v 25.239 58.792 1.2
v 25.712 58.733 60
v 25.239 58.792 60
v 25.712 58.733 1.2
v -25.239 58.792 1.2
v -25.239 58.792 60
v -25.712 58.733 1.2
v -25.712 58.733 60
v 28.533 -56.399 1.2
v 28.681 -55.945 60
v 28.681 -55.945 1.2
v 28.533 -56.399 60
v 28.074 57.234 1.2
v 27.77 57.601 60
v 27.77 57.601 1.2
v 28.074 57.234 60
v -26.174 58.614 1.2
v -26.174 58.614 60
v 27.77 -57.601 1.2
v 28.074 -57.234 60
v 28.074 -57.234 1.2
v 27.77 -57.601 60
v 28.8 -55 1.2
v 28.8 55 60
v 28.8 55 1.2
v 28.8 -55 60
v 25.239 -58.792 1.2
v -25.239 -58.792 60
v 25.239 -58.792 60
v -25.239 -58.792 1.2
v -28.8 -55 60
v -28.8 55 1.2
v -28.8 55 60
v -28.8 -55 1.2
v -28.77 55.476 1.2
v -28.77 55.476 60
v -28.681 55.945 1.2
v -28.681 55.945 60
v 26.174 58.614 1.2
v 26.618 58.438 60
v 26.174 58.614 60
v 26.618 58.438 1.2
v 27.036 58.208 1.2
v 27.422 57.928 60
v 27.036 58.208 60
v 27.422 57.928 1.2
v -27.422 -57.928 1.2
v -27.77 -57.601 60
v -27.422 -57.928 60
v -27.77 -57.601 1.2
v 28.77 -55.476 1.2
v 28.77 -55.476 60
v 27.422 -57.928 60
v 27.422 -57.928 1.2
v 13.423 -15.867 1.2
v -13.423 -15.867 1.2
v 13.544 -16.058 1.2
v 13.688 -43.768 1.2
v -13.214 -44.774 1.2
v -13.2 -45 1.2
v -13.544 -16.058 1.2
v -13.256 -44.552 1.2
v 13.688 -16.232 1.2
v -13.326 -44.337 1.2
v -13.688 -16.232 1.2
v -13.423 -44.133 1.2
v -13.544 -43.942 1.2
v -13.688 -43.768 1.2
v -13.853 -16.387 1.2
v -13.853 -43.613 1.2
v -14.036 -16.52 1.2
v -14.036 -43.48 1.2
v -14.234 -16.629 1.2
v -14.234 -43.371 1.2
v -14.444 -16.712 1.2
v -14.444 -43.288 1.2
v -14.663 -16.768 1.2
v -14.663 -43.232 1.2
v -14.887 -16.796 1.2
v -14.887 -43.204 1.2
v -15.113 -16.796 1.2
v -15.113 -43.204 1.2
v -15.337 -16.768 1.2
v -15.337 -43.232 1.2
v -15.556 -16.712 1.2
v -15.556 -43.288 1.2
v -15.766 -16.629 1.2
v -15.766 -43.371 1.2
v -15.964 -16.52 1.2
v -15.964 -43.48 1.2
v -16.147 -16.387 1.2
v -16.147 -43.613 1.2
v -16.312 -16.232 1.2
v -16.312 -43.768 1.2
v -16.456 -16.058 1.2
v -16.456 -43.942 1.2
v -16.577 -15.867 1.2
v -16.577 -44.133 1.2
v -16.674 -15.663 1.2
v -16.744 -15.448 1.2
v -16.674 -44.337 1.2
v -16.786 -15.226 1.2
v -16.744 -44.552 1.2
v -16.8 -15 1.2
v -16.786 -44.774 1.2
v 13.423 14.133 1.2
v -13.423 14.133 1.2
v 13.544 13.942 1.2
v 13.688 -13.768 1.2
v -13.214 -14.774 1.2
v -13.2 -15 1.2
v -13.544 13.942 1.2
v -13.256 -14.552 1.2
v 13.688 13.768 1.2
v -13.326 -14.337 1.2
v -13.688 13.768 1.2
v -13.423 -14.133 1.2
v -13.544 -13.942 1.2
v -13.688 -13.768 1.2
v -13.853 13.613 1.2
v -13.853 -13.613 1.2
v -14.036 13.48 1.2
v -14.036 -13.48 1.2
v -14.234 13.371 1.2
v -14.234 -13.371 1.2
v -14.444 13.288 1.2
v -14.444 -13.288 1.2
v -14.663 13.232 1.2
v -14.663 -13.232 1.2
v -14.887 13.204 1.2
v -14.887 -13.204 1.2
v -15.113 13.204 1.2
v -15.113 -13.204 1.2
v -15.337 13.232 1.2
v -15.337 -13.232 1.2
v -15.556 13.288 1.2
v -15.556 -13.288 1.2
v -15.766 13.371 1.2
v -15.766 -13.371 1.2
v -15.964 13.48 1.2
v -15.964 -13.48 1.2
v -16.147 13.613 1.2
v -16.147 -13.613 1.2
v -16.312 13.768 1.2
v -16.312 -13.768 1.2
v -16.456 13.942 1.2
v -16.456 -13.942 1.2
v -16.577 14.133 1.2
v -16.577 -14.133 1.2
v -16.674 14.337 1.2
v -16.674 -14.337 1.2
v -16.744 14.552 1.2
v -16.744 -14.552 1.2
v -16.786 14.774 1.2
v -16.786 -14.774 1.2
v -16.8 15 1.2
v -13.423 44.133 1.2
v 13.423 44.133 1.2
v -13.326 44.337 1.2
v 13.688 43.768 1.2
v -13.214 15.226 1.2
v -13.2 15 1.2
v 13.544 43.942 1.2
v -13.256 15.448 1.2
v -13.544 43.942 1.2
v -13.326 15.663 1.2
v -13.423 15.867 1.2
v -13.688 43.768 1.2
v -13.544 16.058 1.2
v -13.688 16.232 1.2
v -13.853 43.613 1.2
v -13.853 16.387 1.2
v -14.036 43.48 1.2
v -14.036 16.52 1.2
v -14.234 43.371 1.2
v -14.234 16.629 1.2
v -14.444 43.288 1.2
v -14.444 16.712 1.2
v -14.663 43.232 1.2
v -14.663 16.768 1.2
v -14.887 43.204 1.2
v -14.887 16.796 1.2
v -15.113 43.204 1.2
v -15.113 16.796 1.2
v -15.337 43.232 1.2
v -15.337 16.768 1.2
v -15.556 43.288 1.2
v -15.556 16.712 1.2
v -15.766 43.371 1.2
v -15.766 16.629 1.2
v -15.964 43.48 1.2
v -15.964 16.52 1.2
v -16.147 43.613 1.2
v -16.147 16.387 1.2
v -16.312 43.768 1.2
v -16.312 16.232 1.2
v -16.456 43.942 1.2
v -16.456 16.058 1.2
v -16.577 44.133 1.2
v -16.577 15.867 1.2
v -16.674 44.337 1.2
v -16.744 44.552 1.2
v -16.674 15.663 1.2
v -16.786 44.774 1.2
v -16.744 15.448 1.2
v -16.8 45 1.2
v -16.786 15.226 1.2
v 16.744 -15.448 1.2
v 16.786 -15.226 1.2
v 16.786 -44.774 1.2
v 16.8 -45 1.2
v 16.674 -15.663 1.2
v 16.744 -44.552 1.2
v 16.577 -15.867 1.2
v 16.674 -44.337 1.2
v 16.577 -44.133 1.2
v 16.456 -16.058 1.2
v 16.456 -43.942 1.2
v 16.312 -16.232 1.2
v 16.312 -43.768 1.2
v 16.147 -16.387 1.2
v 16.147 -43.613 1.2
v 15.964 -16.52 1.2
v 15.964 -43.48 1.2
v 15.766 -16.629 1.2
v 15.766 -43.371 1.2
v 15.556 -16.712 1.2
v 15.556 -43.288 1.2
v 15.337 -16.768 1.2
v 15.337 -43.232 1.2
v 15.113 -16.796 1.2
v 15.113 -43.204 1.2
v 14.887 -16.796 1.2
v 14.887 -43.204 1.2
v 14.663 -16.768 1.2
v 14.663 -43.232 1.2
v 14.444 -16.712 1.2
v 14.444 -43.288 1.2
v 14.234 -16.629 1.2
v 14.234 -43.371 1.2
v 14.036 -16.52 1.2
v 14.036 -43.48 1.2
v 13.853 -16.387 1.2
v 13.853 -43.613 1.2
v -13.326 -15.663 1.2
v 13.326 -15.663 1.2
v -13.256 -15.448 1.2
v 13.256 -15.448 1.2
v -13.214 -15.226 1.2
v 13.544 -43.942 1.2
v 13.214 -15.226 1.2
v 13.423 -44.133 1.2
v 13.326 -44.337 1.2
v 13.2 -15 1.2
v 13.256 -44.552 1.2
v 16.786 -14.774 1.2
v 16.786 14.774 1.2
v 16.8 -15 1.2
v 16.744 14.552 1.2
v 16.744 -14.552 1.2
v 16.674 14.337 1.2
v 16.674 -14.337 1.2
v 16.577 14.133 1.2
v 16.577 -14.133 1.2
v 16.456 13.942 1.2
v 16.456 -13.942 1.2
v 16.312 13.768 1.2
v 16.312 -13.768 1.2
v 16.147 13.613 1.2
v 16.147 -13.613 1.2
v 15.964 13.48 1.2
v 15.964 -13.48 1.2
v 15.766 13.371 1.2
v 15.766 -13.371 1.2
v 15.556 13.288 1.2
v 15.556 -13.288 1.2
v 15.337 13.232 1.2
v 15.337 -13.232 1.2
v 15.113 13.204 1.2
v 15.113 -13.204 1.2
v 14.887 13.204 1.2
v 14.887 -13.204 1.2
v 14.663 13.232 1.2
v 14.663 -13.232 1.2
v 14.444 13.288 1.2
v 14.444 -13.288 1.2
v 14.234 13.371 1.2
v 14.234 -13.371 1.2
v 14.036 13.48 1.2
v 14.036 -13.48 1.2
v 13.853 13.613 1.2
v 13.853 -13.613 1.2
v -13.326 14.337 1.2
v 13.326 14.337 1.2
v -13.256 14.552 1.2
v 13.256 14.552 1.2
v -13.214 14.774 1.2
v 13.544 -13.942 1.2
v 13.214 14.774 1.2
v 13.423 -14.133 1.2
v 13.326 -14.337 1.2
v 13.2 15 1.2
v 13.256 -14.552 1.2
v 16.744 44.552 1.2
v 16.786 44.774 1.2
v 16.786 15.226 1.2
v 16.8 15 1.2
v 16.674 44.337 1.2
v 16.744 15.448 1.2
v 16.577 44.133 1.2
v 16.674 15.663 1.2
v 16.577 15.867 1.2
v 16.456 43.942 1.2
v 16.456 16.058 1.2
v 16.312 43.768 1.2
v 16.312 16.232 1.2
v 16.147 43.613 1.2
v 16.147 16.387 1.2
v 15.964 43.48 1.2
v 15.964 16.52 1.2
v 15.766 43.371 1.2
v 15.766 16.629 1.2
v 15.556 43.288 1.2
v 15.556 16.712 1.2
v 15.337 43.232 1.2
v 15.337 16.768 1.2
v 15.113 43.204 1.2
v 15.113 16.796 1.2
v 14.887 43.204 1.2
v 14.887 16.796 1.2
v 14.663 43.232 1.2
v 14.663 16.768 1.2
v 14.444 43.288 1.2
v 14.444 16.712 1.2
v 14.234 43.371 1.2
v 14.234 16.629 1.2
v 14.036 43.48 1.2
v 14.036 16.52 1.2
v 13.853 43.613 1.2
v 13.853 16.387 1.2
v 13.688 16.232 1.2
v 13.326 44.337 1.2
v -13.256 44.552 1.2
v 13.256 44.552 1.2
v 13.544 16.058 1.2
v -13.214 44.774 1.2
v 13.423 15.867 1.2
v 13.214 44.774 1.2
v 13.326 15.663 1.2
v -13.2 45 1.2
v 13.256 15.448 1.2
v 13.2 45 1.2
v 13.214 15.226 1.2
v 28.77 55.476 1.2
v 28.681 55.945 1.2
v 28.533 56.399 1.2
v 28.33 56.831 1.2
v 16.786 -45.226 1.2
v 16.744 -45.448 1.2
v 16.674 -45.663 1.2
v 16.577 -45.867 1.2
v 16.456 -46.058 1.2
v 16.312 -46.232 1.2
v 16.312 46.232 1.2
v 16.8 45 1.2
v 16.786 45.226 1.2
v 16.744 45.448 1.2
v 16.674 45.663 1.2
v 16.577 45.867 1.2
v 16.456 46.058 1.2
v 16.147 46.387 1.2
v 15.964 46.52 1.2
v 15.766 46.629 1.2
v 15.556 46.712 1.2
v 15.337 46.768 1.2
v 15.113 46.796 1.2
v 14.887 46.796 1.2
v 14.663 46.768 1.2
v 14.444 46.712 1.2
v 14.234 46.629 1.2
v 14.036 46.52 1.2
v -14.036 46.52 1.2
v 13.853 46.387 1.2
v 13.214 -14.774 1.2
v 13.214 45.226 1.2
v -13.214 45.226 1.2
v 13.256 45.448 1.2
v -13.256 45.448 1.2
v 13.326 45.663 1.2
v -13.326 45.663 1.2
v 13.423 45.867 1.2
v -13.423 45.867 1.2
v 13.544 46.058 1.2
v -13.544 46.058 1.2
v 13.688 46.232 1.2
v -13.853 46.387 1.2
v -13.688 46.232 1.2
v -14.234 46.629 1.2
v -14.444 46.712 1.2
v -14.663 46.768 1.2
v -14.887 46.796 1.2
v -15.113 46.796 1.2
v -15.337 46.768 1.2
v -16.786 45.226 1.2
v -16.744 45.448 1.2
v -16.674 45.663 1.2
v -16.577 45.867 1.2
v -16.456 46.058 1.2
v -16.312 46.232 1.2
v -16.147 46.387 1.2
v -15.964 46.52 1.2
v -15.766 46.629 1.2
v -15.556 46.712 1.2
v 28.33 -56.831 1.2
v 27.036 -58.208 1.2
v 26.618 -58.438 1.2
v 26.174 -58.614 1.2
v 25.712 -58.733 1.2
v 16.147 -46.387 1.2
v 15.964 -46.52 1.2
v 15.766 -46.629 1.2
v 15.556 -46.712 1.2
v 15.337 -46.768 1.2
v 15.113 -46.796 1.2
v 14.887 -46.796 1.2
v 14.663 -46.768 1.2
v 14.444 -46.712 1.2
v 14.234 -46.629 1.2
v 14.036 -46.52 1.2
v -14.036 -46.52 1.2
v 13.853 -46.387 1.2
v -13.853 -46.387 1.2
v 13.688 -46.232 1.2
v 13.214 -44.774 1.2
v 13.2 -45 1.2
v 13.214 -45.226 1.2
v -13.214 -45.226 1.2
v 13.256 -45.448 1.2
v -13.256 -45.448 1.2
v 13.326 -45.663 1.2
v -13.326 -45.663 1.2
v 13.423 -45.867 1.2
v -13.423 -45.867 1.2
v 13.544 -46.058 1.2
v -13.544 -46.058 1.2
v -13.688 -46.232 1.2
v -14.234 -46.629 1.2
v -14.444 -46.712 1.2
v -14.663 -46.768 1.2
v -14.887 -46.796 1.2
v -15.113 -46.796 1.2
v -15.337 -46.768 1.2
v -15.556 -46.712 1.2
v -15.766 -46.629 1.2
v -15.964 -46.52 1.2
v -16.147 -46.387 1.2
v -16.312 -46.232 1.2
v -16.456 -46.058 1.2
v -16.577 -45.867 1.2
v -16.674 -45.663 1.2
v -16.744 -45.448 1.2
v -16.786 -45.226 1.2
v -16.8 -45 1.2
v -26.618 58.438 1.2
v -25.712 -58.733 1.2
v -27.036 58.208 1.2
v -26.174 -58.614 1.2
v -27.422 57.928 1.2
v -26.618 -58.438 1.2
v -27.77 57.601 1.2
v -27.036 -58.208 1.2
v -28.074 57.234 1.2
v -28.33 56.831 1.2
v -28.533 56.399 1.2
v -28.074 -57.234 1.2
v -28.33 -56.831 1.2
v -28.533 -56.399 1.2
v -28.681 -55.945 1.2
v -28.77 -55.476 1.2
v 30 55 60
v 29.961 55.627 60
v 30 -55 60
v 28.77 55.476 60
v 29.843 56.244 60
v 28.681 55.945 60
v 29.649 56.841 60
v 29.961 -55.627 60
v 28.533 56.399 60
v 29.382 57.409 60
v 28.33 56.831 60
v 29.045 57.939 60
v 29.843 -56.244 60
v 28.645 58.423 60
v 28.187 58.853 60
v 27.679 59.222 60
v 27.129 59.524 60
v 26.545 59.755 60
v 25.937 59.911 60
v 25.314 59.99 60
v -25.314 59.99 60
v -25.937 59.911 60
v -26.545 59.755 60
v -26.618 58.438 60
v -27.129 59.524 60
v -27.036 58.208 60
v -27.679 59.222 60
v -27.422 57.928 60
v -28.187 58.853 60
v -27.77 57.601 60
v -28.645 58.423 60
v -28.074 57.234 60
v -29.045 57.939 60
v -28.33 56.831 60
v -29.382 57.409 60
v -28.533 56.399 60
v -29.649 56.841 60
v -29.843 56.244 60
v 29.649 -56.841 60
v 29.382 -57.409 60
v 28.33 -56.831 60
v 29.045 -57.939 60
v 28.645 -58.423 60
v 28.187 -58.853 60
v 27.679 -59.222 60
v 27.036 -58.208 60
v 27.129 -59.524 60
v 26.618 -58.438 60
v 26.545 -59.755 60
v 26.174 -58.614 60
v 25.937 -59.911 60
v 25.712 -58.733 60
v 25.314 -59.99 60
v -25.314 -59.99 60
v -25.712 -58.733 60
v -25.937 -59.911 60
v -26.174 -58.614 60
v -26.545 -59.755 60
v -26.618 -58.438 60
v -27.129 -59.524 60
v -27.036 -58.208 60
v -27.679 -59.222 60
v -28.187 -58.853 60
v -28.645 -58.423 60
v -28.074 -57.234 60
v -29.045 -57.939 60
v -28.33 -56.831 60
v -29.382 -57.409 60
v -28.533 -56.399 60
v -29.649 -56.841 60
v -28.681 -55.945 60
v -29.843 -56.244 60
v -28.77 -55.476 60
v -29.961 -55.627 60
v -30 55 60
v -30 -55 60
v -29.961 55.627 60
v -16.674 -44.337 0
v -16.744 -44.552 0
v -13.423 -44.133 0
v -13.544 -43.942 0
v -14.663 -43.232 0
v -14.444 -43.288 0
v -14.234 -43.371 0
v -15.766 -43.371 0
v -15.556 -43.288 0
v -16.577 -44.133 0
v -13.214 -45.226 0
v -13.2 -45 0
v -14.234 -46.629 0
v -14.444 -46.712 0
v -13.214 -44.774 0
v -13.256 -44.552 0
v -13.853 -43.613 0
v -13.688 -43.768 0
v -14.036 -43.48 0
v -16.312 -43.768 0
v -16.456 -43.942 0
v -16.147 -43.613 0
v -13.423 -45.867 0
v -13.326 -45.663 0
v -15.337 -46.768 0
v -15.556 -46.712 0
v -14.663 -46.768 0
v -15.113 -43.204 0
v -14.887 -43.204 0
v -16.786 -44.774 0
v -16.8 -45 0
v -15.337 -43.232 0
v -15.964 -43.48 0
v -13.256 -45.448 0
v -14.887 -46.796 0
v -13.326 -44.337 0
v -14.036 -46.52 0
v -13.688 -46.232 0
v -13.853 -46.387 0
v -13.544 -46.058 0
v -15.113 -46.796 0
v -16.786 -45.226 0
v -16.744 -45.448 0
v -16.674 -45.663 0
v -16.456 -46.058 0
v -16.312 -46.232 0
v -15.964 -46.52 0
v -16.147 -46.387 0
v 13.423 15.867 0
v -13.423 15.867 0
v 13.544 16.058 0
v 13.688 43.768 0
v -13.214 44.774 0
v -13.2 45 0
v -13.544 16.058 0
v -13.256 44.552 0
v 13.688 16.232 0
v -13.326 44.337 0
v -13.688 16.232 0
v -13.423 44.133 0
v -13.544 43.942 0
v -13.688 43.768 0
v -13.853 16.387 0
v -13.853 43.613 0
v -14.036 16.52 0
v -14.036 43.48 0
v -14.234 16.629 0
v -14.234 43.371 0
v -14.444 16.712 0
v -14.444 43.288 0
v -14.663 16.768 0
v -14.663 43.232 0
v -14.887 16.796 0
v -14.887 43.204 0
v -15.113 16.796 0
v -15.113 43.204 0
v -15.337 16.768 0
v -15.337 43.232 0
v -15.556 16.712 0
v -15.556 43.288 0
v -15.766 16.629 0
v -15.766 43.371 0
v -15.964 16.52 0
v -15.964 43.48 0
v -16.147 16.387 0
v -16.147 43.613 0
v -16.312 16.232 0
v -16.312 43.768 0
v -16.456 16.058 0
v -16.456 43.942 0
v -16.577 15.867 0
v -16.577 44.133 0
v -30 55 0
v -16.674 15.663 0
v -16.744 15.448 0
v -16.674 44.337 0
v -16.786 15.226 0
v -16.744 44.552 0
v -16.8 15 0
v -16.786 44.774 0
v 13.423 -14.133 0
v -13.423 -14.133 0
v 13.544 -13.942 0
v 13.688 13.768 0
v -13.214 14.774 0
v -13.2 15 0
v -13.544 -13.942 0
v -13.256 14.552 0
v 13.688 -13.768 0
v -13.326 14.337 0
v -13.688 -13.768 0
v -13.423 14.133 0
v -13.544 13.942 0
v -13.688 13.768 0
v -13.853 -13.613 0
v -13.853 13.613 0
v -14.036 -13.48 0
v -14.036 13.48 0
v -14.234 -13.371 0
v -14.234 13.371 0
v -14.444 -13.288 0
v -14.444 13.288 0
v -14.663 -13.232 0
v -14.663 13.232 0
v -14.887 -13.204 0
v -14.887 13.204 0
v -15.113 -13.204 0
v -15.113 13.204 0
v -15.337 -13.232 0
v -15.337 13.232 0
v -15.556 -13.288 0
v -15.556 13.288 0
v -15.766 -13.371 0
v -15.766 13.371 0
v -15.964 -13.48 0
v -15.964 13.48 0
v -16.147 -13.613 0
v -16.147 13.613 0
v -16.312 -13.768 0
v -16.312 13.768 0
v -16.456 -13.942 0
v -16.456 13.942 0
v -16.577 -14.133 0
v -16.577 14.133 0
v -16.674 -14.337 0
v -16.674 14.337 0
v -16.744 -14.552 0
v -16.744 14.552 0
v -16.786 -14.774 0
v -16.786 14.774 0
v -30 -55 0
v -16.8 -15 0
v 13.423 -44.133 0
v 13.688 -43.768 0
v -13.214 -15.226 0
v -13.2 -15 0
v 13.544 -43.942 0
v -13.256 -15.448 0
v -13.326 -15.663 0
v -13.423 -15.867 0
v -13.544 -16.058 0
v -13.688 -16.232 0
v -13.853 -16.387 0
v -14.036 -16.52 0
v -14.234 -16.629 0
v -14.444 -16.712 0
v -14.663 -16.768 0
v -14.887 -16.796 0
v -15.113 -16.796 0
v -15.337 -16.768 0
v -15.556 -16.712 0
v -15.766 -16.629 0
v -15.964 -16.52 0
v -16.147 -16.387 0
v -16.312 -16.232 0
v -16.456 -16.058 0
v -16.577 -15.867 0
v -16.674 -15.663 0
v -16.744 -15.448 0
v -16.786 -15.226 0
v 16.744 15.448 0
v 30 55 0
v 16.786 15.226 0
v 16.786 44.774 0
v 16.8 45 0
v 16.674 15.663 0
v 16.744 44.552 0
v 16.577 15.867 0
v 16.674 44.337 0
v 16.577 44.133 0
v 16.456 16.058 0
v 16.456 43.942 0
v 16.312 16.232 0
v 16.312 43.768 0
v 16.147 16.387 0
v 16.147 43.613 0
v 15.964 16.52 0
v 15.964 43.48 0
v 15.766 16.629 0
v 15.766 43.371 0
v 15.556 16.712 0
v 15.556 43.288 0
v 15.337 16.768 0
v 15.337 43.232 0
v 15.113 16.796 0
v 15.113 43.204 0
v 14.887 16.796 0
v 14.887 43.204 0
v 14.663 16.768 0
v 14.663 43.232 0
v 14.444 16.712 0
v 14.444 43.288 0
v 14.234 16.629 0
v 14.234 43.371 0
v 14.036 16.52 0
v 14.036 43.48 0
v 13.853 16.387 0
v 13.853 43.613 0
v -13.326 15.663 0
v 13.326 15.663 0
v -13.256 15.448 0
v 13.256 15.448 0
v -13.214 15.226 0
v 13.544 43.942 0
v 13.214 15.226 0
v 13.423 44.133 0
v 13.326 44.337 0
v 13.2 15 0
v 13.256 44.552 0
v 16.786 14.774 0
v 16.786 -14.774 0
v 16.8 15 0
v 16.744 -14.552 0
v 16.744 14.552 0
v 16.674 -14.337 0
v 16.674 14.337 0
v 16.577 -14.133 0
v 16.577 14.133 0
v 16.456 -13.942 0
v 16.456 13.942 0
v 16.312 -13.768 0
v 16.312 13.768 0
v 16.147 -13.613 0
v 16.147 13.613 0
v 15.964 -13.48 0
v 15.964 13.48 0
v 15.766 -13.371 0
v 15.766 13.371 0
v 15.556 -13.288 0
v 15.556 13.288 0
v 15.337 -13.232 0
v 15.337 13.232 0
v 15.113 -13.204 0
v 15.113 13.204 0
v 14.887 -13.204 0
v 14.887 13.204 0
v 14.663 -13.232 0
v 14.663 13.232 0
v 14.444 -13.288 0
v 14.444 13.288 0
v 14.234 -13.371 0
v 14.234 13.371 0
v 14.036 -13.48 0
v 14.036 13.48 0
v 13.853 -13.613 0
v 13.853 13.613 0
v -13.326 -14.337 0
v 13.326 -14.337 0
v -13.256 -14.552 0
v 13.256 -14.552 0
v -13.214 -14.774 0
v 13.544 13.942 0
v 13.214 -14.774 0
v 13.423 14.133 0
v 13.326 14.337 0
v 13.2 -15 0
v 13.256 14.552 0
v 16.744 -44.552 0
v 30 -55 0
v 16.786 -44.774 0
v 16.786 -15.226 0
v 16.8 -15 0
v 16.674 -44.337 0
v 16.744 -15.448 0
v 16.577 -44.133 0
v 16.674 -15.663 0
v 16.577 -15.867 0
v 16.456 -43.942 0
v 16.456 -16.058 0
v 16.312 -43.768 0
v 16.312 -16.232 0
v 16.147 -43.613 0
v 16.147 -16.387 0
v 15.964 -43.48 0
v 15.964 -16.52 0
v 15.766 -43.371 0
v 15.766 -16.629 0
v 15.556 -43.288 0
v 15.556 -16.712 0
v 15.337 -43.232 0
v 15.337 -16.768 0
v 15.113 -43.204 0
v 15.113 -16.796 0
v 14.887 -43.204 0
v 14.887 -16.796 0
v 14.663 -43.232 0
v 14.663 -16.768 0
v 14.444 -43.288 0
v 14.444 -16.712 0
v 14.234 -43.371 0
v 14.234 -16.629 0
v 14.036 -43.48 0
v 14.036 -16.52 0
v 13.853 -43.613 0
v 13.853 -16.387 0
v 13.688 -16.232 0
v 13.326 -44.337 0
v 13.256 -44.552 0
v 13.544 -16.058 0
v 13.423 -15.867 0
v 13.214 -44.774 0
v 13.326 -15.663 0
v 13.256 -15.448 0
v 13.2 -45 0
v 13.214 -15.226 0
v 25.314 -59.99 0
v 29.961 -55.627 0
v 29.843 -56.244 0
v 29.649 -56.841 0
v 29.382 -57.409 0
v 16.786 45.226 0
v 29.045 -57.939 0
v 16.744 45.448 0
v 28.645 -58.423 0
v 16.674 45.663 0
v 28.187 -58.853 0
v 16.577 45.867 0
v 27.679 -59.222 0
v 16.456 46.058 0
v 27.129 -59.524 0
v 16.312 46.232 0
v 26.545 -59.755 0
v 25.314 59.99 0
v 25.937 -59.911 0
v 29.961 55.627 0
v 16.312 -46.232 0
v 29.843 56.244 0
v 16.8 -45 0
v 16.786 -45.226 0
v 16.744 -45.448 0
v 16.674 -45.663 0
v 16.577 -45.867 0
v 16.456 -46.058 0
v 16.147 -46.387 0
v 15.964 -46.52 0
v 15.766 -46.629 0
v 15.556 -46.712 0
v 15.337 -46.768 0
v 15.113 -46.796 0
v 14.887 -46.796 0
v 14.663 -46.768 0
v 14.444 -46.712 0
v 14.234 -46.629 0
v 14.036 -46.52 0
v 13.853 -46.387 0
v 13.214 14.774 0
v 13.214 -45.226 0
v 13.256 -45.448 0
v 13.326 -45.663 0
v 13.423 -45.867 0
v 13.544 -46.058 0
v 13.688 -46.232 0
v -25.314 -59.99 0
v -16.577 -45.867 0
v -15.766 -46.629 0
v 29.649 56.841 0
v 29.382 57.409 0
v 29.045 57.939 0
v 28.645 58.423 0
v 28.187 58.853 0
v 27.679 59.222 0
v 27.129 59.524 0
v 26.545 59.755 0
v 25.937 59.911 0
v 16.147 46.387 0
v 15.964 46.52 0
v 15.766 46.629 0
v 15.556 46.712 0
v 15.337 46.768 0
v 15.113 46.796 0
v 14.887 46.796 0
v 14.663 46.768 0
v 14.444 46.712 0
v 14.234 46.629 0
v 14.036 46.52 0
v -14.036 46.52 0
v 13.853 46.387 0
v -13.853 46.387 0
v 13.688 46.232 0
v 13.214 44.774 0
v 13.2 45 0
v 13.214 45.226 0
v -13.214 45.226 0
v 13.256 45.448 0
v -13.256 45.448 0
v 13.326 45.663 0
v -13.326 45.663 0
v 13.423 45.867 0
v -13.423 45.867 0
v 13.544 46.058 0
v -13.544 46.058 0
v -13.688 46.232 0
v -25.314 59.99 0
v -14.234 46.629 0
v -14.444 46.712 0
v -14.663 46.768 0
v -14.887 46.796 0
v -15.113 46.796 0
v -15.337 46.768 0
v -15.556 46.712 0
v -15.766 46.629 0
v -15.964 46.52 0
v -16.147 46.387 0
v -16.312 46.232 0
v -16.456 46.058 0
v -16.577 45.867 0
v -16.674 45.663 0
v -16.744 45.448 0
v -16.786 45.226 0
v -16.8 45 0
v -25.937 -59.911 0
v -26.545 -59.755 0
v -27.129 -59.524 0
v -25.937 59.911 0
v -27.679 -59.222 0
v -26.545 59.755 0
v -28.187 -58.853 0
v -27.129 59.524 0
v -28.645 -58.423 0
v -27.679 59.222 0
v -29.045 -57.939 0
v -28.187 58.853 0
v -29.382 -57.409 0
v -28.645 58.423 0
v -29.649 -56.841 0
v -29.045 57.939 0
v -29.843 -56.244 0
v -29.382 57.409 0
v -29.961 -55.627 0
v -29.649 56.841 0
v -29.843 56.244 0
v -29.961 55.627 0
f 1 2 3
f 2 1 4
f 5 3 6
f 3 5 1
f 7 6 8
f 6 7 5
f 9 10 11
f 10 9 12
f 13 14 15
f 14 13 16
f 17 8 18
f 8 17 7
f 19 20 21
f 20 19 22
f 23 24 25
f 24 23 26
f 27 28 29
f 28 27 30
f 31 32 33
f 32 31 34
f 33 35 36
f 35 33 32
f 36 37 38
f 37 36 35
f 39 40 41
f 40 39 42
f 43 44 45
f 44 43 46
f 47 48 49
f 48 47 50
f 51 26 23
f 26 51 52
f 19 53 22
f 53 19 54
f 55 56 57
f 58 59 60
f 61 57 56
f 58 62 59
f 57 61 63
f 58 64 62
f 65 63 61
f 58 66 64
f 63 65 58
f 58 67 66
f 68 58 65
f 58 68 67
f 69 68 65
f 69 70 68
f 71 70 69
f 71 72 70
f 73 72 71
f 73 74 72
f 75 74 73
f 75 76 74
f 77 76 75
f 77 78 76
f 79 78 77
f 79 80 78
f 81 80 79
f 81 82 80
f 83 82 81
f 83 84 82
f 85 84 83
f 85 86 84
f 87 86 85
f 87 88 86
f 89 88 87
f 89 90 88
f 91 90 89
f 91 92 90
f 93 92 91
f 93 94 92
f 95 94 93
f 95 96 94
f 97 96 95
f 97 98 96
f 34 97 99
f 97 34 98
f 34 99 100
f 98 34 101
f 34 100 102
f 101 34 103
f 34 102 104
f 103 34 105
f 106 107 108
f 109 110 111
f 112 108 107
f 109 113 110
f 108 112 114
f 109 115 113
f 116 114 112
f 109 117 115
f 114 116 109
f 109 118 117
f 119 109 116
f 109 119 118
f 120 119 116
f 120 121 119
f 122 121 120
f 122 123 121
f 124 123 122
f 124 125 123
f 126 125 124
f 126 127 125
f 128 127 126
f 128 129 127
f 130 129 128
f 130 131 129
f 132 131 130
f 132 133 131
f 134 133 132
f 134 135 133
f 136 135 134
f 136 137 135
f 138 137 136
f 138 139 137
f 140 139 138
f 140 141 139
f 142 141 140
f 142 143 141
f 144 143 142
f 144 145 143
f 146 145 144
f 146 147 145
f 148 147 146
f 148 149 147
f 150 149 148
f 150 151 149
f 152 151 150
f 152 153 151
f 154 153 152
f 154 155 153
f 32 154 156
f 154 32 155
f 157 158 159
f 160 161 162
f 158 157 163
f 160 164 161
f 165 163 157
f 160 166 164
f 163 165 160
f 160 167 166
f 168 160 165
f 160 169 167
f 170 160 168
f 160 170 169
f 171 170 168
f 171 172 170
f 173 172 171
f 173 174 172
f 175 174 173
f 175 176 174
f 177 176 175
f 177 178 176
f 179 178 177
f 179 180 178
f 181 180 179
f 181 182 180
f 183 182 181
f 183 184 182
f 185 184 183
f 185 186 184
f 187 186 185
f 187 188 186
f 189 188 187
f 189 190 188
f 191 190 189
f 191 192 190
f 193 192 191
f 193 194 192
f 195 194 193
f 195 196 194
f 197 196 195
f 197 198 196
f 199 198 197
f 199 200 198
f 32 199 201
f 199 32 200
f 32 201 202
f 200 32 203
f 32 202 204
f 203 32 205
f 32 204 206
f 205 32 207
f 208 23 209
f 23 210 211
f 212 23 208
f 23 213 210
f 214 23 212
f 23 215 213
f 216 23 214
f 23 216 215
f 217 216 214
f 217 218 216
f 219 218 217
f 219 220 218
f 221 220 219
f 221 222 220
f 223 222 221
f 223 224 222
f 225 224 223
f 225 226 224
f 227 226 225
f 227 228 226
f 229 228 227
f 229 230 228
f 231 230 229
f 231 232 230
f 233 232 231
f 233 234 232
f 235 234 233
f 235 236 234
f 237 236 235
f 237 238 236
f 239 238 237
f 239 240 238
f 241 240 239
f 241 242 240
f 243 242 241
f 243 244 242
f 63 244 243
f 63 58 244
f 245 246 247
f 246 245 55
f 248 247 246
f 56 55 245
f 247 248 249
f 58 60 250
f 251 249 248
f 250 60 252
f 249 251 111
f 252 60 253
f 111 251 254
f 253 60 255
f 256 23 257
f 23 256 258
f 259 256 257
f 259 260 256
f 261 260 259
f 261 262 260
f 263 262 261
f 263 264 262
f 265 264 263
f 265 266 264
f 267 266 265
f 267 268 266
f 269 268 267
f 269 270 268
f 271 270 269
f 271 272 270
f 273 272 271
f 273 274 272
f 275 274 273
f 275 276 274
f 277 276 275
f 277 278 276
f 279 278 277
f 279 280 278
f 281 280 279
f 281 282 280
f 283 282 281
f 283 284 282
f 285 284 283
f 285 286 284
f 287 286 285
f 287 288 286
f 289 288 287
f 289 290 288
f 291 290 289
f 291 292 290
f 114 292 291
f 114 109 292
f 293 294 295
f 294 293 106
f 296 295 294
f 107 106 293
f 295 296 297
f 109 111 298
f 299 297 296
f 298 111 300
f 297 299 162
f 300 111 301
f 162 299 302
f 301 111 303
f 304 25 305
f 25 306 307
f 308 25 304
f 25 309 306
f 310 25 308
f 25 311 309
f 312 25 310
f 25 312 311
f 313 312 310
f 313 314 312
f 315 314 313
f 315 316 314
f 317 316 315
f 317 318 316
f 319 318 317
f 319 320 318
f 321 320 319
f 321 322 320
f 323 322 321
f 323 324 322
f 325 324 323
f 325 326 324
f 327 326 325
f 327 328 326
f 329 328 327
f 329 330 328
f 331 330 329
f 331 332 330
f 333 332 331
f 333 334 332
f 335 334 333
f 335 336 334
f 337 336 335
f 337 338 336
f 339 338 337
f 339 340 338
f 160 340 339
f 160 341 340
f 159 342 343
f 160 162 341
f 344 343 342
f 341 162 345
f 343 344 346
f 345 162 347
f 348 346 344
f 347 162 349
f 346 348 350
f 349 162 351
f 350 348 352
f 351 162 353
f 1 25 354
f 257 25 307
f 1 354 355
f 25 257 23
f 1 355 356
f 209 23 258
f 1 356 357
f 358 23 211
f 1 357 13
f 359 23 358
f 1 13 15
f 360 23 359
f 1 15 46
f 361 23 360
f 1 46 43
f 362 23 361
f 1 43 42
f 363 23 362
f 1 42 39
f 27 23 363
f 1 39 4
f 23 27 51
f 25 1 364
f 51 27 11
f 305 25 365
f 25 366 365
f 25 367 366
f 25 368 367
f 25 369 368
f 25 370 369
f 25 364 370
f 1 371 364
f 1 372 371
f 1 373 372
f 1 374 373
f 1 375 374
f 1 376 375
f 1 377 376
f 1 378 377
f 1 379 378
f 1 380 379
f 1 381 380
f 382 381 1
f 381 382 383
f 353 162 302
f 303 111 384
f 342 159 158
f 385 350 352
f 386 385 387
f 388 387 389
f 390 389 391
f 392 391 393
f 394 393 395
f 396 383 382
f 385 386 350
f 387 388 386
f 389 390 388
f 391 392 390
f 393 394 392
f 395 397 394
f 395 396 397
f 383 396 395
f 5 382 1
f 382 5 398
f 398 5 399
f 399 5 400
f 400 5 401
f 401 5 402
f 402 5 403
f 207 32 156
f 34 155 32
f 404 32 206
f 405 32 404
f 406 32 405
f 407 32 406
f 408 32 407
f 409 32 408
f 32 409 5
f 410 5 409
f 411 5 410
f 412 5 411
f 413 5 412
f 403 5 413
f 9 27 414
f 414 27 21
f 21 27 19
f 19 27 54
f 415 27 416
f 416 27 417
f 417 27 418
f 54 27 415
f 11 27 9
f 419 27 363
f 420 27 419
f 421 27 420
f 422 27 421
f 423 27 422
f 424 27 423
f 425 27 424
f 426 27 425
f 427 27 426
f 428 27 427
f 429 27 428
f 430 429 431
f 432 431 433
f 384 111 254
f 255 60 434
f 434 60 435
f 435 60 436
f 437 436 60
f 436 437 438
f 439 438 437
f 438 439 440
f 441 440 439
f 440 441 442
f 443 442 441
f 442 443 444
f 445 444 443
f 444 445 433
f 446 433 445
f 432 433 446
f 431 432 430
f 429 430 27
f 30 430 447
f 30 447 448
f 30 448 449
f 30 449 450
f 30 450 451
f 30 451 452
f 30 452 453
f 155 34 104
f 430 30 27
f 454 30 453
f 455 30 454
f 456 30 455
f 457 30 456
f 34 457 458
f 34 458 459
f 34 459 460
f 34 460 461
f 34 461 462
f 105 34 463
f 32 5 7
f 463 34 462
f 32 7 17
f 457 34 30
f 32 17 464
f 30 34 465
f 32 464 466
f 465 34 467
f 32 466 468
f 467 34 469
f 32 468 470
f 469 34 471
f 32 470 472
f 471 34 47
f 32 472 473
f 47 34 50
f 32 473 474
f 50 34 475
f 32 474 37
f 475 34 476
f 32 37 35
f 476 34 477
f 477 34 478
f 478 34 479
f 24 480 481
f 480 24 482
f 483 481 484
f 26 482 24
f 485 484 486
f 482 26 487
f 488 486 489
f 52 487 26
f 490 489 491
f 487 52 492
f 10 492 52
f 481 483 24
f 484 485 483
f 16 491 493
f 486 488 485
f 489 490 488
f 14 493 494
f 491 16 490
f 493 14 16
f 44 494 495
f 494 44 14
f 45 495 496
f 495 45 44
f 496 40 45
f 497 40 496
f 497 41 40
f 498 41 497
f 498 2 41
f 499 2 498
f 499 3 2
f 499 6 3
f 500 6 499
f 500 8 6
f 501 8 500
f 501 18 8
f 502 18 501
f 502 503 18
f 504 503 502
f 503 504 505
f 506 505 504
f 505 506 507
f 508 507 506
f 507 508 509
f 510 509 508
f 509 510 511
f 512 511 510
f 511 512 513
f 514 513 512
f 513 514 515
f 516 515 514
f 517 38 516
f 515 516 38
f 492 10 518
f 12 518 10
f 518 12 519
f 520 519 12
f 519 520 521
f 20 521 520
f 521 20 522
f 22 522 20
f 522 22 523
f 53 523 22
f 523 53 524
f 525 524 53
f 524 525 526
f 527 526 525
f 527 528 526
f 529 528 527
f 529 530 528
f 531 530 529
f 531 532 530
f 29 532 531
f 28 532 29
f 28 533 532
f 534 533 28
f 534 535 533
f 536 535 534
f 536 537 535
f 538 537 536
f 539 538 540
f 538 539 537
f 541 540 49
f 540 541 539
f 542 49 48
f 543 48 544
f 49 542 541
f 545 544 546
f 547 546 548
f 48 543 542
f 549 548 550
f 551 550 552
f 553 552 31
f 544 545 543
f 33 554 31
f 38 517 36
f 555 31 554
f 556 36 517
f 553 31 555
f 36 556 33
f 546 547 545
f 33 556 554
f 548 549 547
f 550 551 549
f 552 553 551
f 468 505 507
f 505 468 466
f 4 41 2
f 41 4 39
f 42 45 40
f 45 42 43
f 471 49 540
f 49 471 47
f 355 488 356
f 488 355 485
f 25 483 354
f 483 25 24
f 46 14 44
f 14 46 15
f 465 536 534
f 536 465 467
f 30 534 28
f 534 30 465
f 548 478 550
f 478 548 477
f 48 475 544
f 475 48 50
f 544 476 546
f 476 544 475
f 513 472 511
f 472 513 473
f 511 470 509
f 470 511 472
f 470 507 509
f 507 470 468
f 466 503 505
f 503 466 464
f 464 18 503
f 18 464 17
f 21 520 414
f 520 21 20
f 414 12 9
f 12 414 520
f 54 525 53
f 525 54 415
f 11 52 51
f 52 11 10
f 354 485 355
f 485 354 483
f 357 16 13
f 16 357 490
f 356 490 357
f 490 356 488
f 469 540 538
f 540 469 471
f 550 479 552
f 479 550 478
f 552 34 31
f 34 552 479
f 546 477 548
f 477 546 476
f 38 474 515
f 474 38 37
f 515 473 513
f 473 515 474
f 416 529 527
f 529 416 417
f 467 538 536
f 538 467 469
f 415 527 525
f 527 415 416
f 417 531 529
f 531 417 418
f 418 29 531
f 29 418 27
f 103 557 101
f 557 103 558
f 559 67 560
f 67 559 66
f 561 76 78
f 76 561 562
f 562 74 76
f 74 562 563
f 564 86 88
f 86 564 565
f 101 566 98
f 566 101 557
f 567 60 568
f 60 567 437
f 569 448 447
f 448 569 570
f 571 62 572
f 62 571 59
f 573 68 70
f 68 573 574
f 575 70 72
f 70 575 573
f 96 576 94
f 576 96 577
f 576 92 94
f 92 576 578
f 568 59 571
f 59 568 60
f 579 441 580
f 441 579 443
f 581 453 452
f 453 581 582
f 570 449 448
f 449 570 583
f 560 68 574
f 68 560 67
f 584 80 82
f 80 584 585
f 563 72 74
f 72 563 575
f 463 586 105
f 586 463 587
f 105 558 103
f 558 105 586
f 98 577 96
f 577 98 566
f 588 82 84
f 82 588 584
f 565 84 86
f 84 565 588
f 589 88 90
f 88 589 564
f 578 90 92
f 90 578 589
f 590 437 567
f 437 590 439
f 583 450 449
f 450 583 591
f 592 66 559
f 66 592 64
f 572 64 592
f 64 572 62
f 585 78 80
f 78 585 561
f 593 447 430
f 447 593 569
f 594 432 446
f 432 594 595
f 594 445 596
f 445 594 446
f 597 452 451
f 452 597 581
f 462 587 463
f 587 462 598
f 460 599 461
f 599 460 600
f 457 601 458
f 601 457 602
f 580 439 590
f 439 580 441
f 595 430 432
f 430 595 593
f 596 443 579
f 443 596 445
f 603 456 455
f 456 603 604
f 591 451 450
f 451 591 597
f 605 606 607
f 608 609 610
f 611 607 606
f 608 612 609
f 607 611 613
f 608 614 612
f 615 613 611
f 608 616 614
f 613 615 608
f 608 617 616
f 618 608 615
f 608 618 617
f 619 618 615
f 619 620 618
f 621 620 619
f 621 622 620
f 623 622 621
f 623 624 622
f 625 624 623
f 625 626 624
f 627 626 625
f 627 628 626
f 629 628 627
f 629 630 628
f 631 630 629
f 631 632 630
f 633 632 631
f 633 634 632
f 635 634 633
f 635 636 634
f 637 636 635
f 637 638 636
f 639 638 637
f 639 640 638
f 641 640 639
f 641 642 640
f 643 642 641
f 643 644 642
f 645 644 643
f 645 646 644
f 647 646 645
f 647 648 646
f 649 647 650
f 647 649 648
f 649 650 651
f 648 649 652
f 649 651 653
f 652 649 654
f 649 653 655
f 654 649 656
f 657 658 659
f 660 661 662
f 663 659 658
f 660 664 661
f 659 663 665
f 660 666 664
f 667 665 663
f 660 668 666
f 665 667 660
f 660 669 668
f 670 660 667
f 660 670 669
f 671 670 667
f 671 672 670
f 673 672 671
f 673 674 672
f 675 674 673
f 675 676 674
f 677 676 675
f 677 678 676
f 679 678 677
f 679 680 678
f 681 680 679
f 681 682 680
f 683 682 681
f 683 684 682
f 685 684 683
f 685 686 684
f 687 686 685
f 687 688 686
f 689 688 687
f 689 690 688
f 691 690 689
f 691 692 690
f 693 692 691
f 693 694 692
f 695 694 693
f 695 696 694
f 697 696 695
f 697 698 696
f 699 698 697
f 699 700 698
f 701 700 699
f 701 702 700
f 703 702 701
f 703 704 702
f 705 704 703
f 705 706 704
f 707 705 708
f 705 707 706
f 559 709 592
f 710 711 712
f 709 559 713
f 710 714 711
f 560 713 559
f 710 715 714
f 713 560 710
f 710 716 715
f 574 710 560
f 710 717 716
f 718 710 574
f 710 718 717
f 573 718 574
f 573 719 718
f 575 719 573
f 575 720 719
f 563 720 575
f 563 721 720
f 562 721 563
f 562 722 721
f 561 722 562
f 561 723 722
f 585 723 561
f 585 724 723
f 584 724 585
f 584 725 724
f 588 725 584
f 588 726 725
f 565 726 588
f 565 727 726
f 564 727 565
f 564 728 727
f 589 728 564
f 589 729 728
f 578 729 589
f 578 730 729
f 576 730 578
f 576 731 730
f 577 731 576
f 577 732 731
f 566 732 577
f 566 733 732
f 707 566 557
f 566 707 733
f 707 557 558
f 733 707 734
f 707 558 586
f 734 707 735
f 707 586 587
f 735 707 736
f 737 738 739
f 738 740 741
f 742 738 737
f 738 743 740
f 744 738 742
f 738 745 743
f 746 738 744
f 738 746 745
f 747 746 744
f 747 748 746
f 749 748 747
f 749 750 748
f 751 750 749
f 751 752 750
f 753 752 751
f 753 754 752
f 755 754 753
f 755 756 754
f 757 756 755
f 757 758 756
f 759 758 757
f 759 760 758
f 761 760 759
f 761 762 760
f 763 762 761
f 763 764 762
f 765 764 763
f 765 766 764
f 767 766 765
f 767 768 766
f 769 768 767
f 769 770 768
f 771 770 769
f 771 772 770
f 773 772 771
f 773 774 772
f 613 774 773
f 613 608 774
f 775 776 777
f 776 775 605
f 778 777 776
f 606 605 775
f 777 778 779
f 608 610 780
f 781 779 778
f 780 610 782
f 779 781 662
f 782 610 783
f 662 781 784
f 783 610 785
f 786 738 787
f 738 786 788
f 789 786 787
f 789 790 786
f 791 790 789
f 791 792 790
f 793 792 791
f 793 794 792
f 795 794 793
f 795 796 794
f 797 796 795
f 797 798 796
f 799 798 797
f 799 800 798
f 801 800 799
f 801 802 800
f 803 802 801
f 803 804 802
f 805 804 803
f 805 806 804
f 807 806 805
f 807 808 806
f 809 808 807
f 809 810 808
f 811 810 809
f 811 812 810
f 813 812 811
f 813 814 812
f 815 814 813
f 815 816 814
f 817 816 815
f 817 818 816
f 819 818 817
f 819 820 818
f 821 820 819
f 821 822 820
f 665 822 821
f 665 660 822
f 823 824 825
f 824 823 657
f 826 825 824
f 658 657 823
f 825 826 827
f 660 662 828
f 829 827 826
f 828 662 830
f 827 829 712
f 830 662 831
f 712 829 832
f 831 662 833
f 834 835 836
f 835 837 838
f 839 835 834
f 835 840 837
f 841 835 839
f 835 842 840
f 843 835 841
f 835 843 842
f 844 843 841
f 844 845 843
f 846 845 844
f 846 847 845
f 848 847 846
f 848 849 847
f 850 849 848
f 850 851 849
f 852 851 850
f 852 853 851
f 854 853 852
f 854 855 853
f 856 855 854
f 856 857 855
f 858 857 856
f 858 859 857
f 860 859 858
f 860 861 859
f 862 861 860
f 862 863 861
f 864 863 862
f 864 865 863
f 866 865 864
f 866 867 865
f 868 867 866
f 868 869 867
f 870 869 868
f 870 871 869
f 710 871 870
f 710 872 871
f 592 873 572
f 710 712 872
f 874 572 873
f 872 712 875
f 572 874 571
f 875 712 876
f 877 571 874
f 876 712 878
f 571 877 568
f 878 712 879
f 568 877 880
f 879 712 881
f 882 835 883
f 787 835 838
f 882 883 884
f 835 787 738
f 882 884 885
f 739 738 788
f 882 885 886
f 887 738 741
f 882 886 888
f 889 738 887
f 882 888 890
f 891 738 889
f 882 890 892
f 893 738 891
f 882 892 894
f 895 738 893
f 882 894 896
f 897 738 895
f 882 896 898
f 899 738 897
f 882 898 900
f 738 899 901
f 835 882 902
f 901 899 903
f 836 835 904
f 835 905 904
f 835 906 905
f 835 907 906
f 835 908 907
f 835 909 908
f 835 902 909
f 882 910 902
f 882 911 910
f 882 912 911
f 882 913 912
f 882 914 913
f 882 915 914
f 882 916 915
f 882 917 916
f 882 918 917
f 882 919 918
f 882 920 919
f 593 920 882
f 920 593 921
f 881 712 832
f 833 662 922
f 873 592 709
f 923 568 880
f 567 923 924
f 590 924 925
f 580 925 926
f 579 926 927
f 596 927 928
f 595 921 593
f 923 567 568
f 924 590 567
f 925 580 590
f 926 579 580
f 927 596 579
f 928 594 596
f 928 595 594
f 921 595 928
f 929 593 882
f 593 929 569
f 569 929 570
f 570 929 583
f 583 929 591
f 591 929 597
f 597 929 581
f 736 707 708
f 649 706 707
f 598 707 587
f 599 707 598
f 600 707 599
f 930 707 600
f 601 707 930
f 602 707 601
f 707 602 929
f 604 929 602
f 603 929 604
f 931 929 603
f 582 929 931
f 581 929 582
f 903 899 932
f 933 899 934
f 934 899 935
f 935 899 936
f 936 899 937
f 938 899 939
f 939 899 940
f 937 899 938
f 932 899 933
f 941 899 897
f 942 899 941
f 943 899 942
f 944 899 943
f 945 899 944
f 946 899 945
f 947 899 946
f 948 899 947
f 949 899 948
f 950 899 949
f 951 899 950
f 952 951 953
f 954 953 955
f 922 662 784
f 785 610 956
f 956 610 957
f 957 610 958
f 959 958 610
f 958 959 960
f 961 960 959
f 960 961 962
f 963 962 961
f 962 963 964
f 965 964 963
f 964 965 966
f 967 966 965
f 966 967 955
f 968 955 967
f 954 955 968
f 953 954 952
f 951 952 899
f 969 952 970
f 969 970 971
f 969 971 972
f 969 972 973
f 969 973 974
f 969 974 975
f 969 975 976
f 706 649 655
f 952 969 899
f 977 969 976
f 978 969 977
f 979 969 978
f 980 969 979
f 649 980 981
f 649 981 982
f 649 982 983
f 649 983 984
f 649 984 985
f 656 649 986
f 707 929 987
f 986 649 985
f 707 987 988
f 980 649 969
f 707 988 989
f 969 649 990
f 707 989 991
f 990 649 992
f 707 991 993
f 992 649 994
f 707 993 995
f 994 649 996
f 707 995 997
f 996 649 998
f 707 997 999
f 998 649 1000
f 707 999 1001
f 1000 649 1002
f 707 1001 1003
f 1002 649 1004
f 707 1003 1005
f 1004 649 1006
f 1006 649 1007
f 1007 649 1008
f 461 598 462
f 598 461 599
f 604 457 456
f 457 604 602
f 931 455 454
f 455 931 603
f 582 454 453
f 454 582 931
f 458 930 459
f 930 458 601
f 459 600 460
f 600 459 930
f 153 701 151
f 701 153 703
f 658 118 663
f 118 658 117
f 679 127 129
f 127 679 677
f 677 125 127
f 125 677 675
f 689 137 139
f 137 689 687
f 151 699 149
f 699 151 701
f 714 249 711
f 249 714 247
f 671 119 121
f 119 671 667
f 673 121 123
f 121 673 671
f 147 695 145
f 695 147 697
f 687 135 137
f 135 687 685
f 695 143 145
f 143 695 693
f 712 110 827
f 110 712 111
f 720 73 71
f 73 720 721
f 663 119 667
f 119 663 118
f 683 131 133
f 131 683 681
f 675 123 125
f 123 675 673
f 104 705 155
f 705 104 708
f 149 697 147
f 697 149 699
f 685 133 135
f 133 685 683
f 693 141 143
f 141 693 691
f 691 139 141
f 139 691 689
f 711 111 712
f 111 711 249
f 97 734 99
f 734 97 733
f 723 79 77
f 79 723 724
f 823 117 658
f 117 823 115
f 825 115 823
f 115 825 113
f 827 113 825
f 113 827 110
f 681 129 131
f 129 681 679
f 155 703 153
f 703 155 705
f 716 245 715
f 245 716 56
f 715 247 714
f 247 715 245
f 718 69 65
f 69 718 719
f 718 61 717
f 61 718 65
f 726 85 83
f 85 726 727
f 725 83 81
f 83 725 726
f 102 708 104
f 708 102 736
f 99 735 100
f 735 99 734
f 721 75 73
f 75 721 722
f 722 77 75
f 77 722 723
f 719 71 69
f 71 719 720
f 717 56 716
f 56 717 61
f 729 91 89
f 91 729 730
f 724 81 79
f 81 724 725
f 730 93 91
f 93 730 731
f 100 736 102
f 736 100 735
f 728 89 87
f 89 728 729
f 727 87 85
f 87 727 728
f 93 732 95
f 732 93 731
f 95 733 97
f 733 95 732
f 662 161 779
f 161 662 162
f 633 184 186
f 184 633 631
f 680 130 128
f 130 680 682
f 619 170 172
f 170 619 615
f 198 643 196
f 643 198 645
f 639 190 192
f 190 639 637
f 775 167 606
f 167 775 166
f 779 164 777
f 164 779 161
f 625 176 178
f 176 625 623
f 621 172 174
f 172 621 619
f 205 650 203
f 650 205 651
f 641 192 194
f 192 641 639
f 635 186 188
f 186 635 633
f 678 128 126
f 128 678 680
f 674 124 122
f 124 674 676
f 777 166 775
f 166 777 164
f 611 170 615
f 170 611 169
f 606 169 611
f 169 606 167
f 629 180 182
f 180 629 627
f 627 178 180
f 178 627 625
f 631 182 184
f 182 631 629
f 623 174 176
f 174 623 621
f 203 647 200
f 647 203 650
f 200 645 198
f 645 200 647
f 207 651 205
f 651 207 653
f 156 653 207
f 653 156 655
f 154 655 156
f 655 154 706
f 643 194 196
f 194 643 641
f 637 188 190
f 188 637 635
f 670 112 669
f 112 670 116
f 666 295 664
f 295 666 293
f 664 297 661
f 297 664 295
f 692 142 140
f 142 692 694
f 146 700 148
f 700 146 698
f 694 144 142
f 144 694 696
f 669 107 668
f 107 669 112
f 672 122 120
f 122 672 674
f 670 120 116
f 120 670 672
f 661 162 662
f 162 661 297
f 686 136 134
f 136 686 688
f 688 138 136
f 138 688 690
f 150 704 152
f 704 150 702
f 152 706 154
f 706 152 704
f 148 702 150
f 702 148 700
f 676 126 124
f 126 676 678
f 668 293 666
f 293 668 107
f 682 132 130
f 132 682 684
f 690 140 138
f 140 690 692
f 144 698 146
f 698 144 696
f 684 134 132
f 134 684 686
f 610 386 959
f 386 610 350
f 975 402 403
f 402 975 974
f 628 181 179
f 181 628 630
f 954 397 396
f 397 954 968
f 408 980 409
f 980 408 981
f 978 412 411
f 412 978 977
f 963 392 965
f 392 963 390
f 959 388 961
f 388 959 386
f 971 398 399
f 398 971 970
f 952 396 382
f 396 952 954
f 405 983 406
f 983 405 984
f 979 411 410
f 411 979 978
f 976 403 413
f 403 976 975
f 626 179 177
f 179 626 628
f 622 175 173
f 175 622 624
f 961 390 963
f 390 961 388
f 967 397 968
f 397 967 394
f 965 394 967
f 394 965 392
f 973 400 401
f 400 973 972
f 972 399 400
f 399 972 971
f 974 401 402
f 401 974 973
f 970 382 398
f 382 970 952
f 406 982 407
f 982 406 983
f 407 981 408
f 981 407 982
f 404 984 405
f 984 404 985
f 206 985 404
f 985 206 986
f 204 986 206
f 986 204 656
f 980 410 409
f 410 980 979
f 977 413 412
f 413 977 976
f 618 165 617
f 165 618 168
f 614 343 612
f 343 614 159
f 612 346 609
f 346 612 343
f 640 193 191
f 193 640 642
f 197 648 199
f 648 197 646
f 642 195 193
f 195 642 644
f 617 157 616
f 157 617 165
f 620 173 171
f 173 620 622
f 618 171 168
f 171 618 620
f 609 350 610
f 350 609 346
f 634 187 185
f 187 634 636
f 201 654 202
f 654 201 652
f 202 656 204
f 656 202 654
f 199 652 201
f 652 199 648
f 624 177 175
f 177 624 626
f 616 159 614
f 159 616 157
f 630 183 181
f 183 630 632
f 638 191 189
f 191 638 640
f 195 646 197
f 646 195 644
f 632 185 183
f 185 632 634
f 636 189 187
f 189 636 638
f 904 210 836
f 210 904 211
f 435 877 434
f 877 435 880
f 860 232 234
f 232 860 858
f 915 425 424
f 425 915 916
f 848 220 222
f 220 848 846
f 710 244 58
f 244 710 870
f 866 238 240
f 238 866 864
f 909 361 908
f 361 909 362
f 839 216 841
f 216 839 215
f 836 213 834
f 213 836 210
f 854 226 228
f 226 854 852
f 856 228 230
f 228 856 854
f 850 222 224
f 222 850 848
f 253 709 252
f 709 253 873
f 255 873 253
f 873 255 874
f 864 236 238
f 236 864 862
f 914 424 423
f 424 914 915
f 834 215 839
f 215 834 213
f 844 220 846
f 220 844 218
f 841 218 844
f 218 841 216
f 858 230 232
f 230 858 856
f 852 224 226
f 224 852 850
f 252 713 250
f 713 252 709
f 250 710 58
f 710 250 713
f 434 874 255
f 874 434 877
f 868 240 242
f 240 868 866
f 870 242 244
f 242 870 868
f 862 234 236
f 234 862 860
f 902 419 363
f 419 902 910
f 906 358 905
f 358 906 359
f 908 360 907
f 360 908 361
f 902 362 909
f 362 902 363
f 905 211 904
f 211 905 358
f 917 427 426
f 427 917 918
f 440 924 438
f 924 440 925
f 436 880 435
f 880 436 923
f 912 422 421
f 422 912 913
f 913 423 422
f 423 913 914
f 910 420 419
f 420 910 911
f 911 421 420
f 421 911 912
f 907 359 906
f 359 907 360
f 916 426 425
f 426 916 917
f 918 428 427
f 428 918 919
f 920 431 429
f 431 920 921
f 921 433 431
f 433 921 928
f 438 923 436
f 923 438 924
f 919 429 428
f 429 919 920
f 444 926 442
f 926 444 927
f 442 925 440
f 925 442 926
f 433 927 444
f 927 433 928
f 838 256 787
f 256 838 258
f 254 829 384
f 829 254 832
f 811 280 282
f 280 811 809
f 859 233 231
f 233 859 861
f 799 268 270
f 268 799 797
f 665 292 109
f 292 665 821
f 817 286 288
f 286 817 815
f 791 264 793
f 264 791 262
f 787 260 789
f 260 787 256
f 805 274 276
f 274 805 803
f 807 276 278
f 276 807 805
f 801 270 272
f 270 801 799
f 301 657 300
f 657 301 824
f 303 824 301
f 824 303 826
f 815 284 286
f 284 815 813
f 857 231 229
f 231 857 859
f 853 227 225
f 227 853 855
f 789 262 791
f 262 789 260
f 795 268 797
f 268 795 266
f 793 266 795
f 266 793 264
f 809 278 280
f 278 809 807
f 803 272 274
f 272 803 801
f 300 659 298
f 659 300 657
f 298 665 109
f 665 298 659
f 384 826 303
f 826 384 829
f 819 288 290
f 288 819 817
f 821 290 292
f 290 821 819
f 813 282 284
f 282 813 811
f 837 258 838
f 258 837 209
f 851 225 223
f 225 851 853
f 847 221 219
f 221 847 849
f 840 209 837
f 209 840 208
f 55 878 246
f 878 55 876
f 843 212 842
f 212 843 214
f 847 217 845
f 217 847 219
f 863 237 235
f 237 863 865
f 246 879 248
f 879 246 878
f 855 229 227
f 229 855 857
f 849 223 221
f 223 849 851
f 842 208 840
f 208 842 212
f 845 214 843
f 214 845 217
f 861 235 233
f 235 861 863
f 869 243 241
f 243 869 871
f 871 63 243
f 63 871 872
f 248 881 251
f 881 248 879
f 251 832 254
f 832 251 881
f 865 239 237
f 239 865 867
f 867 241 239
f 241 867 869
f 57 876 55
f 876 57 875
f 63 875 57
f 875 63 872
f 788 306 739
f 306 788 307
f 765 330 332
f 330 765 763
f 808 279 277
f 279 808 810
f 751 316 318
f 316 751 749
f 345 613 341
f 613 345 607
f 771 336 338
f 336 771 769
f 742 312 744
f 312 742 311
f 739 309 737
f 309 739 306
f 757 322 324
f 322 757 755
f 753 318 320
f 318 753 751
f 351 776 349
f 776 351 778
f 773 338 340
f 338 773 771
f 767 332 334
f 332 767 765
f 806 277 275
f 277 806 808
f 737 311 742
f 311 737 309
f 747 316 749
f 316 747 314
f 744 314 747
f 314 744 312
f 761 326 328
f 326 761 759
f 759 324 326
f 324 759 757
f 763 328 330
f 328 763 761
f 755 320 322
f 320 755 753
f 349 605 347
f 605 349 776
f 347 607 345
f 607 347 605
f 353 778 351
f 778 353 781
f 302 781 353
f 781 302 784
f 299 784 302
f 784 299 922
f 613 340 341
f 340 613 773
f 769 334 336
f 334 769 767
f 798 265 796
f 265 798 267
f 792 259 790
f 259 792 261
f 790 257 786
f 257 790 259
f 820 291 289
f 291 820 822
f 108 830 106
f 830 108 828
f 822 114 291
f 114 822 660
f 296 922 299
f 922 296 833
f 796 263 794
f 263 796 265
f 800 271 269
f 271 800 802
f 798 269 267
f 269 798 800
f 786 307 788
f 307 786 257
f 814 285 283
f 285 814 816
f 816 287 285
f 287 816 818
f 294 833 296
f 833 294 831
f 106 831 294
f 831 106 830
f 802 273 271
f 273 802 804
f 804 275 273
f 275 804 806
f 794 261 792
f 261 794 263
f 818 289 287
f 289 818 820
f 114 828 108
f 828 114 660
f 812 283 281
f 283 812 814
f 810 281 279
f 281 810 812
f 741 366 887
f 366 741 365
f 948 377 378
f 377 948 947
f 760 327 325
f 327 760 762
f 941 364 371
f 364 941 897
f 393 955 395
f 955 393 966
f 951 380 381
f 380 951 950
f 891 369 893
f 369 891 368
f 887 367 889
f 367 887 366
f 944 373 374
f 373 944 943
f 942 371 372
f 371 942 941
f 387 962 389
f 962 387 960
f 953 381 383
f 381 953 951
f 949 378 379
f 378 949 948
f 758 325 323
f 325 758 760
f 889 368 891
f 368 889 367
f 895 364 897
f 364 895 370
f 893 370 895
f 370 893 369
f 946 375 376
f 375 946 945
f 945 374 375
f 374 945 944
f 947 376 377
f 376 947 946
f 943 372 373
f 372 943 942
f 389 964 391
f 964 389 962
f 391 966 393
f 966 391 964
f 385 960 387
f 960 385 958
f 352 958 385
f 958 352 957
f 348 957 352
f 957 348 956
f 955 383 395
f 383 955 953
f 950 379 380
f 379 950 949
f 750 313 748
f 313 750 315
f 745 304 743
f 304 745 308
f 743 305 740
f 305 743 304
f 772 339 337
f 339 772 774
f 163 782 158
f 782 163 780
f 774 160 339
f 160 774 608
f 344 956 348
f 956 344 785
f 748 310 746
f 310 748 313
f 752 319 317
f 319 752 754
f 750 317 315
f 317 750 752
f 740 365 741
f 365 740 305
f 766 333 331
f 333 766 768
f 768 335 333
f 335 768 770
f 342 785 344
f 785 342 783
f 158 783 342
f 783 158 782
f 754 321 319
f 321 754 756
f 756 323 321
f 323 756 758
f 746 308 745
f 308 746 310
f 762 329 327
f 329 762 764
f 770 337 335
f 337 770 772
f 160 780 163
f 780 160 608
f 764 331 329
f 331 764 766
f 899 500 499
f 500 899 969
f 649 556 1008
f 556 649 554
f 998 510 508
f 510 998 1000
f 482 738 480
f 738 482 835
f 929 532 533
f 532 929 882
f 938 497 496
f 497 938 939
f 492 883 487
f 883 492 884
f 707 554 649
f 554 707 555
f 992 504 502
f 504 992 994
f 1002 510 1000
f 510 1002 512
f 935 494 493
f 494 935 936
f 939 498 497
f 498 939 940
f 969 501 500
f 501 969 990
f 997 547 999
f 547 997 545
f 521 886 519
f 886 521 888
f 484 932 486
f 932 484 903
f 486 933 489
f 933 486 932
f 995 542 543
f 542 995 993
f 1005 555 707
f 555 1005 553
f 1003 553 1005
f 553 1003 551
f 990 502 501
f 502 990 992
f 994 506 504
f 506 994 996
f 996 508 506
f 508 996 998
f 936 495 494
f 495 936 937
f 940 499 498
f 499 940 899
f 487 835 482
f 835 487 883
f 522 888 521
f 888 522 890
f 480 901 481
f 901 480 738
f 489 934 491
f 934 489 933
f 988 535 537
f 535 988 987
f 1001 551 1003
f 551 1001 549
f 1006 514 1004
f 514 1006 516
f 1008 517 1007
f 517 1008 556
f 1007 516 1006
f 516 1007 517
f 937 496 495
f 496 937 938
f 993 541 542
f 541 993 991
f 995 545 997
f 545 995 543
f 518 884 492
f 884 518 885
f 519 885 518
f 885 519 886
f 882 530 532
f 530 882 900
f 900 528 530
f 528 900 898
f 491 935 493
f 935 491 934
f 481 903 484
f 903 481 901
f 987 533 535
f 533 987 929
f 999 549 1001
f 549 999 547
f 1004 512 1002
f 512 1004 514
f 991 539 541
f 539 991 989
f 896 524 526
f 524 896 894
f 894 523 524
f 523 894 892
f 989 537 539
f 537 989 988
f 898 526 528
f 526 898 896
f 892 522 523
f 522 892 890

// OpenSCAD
$fn = 50;


difference() {
	union() {
		hull() {
			translate(v = [-25.0000000000, 55.0000000000, 0]) {
				cylinder(h = 60, r = 5);
			}
			translate(v = [25.0000000000, 55.0000000000, 0]) {
				cylinder(h = 60, r = 5);
			}
			translate(v = [-25.0000000000, -55.0000000000, 0]) {
				cylinder(h = 60, r = 5);
			}
			translate(v = [25.0000000000, -55.0000000000, 0]) {
				cylinder(h = 60, r = 5);
			}
		}
	}
	union() {
		translate(v = [0, 0, 1.2000000000]) {
			hull() {
				translate(v = [-25.0000000000, 55.0000000000, 0]) {
					cylinder(h = 58.8000000000, r = 3.8000000000);
				}
				translate(v = [25.0000000000, 55.0000000000, 0]) {
					cylinder(h = 58.8000000000, r = 3.8000000000);
				}
				translate(v = [-25.0000000000, -55.0000000000, 0]) {
					cylinder(h = 58.8000000000, r = 3.8000000000);
				}
				translate(v = [25.0000000000, -55.0000000000, 0]) {
					cylinder(h = 58.8000000000, r = 3.8000000000);
				}
			}
		}
		#translate(v = [-15.0000000000, -45.0000000000, 0]) {
			cylinder(h = 1.2000000000, r = 1.8000000000);
		}
		#translate(v = [-15.0000000000, -15.0000000000, 0]) {
			cylinder(h = 1.2000000000, r = 1.8000000000);
		}
		#translate(v = [-15.0000000000, 15.0000000000, 0]) {
			cylinder(h = 1.2000000000, r = 1.8000000000);
		}
		#translate(v = [-15.0000000000, 45.0000000000, 0]) {
			cylinder(h = 1.2000000000, r = 1.8000000000);
		}
		#translate(v = [15.0000000000, -45.0000000000, 0]) {
			cylinder(h = 1.2000000000, r = 1.8000000000);
		}
		#translate(v = [15.0000000000, -15.0000000000, 0]) {
			cylinder(h = 1.2000000000, r = 1.8000000000);
		}
		#translate(v = [15.0000000000, 15.0000000000, 0]) {
			cylinder(h = 1.2000000000, r = 1.8000000000);
		}
		#translate(v = [15.0000000000, 45.0000000000, 0]) {
			cylinder(h = 1.2000000000, r = 1.8000000000);
		}
	}
}
